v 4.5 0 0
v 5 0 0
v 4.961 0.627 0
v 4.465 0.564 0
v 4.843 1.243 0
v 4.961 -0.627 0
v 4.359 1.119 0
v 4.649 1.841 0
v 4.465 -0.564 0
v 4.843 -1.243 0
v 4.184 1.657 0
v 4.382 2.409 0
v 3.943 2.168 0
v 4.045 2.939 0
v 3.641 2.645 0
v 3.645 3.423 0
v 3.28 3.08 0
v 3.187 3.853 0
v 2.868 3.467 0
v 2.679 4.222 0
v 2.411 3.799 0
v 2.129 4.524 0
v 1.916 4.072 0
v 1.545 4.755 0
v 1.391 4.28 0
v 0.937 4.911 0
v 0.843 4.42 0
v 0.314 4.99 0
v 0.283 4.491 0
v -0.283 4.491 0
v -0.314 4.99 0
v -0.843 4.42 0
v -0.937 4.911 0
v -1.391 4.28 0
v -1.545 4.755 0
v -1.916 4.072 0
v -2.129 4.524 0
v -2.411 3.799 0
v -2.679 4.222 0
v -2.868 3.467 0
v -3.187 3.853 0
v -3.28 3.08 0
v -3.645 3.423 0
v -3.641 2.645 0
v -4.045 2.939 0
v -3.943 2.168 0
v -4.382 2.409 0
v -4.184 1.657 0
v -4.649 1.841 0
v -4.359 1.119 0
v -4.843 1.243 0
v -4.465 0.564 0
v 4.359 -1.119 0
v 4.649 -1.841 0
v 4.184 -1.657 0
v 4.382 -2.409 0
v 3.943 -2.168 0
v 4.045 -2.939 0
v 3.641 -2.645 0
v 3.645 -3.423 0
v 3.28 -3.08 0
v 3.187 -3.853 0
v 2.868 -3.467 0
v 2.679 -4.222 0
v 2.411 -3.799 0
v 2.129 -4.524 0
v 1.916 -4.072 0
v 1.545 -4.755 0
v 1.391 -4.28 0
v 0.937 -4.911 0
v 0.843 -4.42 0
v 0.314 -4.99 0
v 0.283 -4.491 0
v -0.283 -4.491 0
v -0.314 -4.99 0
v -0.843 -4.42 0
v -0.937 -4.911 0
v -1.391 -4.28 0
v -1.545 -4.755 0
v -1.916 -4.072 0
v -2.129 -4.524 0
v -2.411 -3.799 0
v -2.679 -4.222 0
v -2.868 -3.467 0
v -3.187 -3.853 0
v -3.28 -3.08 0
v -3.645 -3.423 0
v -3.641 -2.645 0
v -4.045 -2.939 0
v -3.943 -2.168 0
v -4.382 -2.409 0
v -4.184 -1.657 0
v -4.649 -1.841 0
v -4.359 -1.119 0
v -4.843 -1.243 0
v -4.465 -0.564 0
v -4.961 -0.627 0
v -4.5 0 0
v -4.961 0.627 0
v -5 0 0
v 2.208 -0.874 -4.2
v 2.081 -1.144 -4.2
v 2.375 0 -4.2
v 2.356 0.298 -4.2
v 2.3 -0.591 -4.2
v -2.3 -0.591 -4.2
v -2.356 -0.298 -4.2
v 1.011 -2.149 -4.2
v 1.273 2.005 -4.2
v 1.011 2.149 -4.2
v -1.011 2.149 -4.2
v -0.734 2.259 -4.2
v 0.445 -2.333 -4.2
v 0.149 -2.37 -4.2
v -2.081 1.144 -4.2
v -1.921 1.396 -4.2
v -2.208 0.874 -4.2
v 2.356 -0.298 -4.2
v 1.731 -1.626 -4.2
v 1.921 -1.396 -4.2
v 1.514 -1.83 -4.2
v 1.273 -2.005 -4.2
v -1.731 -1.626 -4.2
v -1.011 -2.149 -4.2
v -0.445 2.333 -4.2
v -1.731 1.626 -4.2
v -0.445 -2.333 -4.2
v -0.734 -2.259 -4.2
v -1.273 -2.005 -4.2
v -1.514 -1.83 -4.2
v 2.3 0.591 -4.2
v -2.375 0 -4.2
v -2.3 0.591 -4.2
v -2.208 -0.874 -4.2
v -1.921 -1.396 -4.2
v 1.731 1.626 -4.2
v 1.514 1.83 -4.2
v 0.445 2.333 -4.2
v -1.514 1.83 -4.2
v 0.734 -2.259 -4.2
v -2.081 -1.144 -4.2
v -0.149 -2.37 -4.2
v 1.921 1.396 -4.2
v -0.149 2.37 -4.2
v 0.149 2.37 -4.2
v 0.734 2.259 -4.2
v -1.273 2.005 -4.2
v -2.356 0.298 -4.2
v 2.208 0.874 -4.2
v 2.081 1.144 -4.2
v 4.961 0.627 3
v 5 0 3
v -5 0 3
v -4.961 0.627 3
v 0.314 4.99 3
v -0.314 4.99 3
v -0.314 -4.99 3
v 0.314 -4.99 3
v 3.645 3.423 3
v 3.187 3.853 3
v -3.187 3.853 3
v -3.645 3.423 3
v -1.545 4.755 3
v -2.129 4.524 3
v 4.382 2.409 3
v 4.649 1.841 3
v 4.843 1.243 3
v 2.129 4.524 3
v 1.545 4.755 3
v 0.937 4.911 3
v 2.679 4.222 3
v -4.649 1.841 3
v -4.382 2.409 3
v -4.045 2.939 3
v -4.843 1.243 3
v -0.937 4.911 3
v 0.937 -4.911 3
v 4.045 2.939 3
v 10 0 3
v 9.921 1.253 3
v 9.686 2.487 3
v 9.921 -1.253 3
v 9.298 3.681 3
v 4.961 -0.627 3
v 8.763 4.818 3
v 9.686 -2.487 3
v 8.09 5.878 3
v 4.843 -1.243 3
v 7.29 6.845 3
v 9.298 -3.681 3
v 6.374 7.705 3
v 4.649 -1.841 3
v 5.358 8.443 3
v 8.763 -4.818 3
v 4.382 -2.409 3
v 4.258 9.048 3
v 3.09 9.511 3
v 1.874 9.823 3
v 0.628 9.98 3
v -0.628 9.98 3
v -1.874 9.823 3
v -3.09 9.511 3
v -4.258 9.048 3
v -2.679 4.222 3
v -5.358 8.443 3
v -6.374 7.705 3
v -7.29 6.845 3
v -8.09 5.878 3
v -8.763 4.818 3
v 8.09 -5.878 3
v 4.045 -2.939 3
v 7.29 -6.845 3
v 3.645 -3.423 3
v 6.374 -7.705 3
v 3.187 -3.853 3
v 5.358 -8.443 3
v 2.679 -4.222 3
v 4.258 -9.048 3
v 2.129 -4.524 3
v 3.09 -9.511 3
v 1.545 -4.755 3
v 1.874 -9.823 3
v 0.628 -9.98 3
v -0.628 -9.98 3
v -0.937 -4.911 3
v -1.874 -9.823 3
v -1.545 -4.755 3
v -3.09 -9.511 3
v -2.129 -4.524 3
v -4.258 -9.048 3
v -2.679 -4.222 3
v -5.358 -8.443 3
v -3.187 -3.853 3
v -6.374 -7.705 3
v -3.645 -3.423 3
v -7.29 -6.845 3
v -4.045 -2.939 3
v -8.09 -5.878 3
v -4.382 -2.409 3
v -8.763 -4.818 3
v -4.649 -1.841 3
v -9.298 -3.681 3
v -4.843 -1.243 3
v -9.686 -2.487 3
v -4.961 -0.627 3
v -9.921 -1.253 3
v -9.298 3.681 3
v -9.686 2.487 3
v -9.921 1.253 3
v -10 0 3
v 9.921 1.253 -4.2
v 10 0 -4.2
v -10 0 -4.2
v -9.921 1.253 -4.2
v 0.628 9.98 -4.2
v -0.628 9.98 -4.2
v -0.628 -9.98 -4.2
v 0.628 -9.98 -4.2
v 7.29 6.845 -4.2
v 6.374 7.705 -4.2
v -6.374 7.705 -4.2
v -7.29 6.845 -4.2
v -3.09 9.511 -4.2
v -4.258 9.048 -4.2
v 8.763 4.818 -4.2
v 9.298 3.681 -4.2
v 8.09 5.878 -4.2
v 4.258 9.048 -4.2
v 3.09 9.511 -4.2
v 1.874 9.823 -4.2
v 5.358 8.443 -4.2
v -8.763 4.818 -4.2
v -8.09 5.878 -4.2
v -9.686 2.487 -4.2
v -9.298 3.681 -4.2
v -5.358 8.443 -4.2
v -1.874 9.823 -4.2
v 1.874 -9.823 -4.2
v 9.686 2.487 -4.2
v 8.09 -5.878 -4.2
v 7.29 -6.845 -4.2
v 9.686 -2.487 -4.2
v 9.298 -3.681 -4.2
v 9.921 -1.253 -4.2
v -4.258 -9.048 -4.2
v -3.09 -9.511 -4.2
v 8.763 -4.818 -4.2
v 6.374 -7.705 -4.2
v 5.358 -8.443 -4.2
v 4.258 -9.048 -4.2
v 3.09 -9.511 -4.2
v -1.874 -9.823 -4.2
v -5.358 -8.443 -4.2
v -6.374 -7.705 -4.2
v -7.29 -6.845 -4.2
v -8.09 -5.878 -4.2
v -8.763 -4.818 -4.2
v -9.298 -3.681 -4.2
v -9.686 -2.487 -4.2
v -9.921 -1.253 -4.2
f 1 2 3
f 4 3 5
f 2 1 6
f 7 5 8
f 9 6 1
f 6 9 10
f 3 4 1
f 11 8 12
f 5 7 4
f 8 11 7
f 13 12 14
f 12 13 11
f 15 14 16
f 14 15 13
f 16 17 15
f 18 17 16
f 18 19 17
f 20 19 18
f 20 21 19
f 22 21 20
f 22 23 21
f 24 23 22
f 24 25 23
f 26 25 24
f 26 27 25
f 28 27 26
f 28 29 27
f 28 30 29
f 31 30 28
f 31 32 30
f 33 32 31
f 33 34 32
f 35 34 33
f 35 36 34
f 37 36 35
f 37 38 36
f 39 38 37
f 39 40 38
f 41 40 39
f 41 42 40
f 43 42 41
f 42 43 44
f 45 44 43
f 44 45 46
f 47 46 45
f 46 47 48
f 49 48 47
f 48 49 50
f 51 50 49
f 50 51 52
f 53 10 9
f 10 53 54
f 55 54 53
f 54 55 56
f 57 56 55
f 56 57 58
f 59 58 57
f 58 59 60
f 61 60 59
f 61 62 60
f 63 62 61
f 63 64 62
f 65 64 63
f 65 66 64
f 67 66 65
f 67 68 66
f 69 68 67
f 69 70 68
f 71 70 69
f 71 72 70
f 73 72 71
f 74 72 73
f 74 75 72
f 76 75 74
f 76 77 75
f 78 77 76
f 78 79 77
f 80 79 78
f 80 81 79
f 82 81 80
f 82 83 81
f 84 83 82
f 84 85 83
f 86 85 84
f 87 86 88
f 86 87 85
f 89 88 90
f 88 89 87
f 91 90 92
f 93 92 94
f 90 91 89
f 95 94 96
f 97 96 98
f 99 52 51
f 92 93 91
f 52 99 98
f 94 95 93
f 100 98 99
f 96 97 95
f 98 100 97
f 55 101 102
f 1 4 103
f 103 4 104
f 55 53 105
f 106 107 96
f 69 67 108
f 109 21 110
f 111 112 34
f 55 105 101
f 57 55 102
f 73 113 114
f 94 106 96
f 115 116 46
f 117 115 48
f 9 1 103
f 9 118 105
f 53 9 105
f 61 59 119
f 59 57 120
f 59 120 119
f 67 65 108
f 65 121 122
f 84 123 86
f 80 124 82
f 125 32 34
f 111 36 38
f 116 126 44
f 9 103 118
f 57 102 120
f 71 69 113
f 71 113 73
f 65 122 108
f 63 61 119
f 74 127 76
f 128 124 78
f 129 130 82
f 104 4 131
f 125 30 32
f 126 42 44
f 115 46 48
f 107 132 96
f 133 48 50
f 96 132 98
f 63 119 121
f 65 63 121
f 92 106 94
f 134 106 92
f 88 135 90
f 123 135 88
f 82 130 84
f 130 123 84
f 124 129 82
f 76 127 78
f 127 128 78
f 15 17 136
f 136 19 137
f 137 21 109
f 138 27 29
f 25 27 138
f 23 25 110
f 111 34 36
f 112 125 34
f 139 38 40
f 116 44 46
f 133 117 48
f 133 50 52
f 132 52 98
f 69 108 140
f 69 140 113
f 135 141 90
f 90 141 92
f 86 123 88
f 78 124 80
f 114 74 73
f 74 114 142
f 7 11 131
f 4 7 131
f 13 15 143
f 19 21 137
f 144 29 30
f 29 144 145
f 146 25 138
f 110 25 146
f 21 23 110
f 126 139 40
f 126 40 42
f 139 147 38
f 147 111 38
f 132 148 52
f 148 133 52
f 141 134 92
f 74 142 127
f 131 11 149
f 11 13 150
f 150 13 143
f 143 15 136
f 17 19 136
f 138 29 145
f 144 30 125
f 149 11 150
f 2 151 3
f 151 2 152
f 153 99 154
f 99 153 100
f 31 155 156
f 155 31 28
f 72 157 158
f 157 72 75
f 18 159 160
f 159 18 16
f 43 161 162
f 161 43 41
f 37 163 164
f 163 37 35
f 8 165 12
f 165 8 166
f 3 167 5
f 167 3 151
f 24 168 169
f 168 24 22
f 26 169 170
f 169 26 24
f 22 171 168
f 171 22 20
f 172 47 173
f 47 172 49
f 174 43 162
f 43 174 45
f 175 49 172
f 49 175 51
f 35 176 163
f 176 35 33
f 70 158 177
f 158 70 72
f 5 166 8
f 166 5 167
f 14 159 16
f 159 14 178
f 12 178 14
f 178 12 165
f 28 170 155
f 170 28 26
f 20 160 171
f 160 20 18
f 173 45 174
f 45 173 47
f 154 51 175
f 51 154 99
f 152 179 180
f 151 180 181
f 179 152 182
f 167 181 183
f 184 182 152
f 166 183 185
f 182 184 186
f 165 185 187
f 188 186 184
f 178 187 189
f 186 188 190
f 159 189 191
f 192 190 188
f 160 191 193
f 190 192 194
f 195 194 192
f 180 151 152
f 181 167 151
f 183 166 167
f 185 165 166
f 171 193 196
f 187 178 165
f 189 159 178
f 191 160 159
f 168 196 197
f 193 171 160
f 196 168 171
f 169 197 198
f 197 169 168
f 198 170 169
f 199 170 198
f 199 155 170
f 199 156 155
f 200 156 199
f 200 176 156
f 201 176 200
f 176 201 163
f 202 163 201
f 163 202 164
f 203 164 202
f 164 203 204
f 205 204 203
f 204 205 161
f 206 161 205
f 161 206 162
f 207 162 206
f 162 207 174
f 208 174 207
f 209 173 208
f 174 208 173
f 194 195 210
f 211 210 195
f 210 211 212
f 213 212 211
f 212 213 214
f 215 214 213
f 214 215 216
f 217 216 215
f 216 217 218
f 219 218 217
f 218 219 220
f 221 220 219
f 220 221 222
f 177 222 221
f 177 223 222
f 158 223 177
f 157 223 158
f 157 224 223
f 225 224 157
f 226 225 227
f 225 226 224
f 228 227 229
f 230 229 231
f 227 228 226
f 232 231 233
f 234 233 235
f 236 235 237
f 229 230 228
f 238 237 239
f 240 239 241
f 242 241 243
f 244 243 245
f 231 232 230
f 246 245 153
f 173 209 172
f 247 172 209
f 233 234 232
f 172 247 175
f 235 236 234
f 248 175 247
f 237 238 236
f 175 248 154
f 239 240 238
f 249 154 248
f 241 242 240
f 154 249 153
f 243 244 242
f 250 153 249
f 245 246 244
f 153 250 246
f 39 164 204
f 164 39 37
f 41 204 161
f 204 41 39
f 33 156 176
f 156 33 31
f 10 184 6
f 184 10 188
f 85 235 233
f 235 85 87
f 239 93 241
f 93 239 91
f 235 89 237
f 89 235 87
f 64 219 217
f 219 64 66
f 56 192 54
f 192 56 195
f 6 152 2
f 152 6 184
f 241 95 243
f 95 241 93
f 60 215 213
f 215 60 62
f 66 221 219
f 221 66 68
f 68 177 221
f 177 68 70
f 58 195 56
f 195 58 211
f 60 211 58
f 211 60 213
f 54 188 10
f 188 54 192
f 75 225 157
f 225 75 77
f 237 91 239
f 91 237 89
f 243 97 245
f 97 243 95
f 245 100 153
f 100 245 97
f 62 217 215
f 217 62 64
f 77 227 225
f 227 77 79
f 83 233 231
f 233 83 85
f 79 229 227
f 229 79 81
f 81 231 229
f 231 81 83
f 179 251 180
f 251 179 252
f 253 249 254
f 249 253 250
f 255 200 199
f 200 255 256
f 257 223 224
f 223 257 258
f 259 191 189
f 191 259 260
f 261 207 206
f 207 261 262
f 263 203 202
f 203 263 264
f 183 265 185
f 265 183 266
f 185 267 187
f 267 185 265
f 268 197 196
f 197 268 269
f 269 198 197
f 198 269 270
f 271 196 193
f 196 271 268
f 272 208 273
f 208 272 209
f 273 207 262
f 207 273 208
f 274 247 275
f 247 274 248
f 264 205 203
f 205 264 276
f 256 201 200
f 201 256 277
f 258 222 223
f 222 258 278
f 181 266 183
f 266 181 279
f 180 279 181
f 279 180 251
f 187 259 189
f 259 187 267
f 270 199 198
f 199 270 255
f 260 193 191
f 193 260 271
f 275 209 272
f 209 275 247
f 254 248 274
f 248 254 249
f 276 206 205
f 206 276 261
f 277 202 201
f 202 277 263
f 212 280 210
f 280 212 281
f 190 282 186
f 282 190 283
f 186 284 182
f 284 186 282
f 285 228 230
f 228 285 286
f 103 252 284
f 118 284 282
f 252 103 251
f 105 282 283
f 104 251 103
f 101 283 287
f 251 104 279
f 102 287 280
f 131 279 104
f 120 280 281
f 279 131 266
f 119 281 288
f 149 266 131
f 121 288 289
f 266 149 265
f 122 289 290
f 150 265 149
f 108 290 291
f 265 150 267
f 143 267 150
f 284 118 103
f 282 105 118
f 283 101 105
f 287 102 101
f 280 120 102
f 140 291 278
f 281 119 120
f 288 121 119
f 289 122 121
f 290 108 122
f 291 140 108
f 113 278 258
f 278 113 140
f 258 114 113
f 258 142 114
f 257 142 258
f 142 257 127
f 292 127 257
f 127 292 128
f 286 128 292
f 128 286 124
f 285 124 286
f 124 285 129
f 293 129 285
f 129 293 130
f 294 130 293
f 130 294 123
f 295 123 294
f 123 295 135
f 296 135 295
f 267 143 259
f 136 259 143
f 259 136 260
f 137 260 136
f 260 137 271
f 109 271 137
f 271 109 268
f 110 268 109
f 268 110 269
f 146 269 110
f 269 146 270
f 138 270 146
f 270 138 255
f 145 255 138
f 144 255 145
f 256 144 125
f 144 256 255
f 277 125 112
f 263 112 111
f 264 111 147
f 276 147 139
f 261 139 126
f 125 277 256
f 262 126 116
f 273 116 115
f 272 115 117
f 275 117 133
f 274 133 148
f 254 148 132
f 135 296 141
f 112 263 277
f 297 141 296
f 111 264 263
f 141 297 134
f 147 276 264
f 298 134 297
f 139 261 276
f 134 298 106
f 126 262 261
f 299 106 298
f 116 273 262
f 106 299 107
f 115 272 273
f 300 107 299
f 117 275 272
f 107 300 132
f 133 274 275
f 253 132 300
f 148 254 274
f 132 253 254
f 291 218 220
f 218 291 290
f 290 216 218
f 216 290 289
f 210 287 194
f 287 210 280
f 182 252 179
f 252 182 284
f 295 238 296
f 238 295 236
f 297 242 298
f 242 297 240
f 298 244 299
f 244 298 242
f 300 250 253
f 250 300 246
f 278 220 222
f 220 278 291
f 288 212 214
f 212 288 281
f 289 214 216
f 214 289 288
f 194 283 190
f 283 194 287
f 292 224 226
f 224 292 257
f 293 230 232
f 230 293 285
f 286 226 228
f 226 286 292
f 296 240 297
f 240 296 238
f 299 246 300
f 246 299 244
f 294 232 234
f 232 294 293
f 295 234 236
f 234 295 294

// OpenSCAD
$fn = 50;


difference() {
	union() {
		translate(v = [0, 0, -4.2000000000]) {
			cylinder(h = 7.2000000000, r = 10.0000000000);
		}
	}
	union() {
		translate(v = [0, 0, 0]) {
			rotate(a = [0, 0, 0]) {
				difference() {
					union() {
						translate(v = [0, 0, -7.2000000000]) {
							cylinder(h = 7.2000000000, r = 2.2500000000);
						}
						translate(v = [0, 0, -4.2000000000]) {
							cylinder(h = 4.2000000000, r1 = 2.3750000000, r2 = 4.5000000000);
						}
						translate(v = [0, 0, -7.2000000000]) {
							cylinder(h = 7.2000000000, r = 2.3750000000);
						}
						translate(v = [0, 0, -7.2000000000]) {
							cylinder(h = 7.2000000000, r = 2.2500000000);
						}
					}
					union();
				}
			}
		}
		#cylinder(h = 3, r = 5.0000000000);
	}
}
